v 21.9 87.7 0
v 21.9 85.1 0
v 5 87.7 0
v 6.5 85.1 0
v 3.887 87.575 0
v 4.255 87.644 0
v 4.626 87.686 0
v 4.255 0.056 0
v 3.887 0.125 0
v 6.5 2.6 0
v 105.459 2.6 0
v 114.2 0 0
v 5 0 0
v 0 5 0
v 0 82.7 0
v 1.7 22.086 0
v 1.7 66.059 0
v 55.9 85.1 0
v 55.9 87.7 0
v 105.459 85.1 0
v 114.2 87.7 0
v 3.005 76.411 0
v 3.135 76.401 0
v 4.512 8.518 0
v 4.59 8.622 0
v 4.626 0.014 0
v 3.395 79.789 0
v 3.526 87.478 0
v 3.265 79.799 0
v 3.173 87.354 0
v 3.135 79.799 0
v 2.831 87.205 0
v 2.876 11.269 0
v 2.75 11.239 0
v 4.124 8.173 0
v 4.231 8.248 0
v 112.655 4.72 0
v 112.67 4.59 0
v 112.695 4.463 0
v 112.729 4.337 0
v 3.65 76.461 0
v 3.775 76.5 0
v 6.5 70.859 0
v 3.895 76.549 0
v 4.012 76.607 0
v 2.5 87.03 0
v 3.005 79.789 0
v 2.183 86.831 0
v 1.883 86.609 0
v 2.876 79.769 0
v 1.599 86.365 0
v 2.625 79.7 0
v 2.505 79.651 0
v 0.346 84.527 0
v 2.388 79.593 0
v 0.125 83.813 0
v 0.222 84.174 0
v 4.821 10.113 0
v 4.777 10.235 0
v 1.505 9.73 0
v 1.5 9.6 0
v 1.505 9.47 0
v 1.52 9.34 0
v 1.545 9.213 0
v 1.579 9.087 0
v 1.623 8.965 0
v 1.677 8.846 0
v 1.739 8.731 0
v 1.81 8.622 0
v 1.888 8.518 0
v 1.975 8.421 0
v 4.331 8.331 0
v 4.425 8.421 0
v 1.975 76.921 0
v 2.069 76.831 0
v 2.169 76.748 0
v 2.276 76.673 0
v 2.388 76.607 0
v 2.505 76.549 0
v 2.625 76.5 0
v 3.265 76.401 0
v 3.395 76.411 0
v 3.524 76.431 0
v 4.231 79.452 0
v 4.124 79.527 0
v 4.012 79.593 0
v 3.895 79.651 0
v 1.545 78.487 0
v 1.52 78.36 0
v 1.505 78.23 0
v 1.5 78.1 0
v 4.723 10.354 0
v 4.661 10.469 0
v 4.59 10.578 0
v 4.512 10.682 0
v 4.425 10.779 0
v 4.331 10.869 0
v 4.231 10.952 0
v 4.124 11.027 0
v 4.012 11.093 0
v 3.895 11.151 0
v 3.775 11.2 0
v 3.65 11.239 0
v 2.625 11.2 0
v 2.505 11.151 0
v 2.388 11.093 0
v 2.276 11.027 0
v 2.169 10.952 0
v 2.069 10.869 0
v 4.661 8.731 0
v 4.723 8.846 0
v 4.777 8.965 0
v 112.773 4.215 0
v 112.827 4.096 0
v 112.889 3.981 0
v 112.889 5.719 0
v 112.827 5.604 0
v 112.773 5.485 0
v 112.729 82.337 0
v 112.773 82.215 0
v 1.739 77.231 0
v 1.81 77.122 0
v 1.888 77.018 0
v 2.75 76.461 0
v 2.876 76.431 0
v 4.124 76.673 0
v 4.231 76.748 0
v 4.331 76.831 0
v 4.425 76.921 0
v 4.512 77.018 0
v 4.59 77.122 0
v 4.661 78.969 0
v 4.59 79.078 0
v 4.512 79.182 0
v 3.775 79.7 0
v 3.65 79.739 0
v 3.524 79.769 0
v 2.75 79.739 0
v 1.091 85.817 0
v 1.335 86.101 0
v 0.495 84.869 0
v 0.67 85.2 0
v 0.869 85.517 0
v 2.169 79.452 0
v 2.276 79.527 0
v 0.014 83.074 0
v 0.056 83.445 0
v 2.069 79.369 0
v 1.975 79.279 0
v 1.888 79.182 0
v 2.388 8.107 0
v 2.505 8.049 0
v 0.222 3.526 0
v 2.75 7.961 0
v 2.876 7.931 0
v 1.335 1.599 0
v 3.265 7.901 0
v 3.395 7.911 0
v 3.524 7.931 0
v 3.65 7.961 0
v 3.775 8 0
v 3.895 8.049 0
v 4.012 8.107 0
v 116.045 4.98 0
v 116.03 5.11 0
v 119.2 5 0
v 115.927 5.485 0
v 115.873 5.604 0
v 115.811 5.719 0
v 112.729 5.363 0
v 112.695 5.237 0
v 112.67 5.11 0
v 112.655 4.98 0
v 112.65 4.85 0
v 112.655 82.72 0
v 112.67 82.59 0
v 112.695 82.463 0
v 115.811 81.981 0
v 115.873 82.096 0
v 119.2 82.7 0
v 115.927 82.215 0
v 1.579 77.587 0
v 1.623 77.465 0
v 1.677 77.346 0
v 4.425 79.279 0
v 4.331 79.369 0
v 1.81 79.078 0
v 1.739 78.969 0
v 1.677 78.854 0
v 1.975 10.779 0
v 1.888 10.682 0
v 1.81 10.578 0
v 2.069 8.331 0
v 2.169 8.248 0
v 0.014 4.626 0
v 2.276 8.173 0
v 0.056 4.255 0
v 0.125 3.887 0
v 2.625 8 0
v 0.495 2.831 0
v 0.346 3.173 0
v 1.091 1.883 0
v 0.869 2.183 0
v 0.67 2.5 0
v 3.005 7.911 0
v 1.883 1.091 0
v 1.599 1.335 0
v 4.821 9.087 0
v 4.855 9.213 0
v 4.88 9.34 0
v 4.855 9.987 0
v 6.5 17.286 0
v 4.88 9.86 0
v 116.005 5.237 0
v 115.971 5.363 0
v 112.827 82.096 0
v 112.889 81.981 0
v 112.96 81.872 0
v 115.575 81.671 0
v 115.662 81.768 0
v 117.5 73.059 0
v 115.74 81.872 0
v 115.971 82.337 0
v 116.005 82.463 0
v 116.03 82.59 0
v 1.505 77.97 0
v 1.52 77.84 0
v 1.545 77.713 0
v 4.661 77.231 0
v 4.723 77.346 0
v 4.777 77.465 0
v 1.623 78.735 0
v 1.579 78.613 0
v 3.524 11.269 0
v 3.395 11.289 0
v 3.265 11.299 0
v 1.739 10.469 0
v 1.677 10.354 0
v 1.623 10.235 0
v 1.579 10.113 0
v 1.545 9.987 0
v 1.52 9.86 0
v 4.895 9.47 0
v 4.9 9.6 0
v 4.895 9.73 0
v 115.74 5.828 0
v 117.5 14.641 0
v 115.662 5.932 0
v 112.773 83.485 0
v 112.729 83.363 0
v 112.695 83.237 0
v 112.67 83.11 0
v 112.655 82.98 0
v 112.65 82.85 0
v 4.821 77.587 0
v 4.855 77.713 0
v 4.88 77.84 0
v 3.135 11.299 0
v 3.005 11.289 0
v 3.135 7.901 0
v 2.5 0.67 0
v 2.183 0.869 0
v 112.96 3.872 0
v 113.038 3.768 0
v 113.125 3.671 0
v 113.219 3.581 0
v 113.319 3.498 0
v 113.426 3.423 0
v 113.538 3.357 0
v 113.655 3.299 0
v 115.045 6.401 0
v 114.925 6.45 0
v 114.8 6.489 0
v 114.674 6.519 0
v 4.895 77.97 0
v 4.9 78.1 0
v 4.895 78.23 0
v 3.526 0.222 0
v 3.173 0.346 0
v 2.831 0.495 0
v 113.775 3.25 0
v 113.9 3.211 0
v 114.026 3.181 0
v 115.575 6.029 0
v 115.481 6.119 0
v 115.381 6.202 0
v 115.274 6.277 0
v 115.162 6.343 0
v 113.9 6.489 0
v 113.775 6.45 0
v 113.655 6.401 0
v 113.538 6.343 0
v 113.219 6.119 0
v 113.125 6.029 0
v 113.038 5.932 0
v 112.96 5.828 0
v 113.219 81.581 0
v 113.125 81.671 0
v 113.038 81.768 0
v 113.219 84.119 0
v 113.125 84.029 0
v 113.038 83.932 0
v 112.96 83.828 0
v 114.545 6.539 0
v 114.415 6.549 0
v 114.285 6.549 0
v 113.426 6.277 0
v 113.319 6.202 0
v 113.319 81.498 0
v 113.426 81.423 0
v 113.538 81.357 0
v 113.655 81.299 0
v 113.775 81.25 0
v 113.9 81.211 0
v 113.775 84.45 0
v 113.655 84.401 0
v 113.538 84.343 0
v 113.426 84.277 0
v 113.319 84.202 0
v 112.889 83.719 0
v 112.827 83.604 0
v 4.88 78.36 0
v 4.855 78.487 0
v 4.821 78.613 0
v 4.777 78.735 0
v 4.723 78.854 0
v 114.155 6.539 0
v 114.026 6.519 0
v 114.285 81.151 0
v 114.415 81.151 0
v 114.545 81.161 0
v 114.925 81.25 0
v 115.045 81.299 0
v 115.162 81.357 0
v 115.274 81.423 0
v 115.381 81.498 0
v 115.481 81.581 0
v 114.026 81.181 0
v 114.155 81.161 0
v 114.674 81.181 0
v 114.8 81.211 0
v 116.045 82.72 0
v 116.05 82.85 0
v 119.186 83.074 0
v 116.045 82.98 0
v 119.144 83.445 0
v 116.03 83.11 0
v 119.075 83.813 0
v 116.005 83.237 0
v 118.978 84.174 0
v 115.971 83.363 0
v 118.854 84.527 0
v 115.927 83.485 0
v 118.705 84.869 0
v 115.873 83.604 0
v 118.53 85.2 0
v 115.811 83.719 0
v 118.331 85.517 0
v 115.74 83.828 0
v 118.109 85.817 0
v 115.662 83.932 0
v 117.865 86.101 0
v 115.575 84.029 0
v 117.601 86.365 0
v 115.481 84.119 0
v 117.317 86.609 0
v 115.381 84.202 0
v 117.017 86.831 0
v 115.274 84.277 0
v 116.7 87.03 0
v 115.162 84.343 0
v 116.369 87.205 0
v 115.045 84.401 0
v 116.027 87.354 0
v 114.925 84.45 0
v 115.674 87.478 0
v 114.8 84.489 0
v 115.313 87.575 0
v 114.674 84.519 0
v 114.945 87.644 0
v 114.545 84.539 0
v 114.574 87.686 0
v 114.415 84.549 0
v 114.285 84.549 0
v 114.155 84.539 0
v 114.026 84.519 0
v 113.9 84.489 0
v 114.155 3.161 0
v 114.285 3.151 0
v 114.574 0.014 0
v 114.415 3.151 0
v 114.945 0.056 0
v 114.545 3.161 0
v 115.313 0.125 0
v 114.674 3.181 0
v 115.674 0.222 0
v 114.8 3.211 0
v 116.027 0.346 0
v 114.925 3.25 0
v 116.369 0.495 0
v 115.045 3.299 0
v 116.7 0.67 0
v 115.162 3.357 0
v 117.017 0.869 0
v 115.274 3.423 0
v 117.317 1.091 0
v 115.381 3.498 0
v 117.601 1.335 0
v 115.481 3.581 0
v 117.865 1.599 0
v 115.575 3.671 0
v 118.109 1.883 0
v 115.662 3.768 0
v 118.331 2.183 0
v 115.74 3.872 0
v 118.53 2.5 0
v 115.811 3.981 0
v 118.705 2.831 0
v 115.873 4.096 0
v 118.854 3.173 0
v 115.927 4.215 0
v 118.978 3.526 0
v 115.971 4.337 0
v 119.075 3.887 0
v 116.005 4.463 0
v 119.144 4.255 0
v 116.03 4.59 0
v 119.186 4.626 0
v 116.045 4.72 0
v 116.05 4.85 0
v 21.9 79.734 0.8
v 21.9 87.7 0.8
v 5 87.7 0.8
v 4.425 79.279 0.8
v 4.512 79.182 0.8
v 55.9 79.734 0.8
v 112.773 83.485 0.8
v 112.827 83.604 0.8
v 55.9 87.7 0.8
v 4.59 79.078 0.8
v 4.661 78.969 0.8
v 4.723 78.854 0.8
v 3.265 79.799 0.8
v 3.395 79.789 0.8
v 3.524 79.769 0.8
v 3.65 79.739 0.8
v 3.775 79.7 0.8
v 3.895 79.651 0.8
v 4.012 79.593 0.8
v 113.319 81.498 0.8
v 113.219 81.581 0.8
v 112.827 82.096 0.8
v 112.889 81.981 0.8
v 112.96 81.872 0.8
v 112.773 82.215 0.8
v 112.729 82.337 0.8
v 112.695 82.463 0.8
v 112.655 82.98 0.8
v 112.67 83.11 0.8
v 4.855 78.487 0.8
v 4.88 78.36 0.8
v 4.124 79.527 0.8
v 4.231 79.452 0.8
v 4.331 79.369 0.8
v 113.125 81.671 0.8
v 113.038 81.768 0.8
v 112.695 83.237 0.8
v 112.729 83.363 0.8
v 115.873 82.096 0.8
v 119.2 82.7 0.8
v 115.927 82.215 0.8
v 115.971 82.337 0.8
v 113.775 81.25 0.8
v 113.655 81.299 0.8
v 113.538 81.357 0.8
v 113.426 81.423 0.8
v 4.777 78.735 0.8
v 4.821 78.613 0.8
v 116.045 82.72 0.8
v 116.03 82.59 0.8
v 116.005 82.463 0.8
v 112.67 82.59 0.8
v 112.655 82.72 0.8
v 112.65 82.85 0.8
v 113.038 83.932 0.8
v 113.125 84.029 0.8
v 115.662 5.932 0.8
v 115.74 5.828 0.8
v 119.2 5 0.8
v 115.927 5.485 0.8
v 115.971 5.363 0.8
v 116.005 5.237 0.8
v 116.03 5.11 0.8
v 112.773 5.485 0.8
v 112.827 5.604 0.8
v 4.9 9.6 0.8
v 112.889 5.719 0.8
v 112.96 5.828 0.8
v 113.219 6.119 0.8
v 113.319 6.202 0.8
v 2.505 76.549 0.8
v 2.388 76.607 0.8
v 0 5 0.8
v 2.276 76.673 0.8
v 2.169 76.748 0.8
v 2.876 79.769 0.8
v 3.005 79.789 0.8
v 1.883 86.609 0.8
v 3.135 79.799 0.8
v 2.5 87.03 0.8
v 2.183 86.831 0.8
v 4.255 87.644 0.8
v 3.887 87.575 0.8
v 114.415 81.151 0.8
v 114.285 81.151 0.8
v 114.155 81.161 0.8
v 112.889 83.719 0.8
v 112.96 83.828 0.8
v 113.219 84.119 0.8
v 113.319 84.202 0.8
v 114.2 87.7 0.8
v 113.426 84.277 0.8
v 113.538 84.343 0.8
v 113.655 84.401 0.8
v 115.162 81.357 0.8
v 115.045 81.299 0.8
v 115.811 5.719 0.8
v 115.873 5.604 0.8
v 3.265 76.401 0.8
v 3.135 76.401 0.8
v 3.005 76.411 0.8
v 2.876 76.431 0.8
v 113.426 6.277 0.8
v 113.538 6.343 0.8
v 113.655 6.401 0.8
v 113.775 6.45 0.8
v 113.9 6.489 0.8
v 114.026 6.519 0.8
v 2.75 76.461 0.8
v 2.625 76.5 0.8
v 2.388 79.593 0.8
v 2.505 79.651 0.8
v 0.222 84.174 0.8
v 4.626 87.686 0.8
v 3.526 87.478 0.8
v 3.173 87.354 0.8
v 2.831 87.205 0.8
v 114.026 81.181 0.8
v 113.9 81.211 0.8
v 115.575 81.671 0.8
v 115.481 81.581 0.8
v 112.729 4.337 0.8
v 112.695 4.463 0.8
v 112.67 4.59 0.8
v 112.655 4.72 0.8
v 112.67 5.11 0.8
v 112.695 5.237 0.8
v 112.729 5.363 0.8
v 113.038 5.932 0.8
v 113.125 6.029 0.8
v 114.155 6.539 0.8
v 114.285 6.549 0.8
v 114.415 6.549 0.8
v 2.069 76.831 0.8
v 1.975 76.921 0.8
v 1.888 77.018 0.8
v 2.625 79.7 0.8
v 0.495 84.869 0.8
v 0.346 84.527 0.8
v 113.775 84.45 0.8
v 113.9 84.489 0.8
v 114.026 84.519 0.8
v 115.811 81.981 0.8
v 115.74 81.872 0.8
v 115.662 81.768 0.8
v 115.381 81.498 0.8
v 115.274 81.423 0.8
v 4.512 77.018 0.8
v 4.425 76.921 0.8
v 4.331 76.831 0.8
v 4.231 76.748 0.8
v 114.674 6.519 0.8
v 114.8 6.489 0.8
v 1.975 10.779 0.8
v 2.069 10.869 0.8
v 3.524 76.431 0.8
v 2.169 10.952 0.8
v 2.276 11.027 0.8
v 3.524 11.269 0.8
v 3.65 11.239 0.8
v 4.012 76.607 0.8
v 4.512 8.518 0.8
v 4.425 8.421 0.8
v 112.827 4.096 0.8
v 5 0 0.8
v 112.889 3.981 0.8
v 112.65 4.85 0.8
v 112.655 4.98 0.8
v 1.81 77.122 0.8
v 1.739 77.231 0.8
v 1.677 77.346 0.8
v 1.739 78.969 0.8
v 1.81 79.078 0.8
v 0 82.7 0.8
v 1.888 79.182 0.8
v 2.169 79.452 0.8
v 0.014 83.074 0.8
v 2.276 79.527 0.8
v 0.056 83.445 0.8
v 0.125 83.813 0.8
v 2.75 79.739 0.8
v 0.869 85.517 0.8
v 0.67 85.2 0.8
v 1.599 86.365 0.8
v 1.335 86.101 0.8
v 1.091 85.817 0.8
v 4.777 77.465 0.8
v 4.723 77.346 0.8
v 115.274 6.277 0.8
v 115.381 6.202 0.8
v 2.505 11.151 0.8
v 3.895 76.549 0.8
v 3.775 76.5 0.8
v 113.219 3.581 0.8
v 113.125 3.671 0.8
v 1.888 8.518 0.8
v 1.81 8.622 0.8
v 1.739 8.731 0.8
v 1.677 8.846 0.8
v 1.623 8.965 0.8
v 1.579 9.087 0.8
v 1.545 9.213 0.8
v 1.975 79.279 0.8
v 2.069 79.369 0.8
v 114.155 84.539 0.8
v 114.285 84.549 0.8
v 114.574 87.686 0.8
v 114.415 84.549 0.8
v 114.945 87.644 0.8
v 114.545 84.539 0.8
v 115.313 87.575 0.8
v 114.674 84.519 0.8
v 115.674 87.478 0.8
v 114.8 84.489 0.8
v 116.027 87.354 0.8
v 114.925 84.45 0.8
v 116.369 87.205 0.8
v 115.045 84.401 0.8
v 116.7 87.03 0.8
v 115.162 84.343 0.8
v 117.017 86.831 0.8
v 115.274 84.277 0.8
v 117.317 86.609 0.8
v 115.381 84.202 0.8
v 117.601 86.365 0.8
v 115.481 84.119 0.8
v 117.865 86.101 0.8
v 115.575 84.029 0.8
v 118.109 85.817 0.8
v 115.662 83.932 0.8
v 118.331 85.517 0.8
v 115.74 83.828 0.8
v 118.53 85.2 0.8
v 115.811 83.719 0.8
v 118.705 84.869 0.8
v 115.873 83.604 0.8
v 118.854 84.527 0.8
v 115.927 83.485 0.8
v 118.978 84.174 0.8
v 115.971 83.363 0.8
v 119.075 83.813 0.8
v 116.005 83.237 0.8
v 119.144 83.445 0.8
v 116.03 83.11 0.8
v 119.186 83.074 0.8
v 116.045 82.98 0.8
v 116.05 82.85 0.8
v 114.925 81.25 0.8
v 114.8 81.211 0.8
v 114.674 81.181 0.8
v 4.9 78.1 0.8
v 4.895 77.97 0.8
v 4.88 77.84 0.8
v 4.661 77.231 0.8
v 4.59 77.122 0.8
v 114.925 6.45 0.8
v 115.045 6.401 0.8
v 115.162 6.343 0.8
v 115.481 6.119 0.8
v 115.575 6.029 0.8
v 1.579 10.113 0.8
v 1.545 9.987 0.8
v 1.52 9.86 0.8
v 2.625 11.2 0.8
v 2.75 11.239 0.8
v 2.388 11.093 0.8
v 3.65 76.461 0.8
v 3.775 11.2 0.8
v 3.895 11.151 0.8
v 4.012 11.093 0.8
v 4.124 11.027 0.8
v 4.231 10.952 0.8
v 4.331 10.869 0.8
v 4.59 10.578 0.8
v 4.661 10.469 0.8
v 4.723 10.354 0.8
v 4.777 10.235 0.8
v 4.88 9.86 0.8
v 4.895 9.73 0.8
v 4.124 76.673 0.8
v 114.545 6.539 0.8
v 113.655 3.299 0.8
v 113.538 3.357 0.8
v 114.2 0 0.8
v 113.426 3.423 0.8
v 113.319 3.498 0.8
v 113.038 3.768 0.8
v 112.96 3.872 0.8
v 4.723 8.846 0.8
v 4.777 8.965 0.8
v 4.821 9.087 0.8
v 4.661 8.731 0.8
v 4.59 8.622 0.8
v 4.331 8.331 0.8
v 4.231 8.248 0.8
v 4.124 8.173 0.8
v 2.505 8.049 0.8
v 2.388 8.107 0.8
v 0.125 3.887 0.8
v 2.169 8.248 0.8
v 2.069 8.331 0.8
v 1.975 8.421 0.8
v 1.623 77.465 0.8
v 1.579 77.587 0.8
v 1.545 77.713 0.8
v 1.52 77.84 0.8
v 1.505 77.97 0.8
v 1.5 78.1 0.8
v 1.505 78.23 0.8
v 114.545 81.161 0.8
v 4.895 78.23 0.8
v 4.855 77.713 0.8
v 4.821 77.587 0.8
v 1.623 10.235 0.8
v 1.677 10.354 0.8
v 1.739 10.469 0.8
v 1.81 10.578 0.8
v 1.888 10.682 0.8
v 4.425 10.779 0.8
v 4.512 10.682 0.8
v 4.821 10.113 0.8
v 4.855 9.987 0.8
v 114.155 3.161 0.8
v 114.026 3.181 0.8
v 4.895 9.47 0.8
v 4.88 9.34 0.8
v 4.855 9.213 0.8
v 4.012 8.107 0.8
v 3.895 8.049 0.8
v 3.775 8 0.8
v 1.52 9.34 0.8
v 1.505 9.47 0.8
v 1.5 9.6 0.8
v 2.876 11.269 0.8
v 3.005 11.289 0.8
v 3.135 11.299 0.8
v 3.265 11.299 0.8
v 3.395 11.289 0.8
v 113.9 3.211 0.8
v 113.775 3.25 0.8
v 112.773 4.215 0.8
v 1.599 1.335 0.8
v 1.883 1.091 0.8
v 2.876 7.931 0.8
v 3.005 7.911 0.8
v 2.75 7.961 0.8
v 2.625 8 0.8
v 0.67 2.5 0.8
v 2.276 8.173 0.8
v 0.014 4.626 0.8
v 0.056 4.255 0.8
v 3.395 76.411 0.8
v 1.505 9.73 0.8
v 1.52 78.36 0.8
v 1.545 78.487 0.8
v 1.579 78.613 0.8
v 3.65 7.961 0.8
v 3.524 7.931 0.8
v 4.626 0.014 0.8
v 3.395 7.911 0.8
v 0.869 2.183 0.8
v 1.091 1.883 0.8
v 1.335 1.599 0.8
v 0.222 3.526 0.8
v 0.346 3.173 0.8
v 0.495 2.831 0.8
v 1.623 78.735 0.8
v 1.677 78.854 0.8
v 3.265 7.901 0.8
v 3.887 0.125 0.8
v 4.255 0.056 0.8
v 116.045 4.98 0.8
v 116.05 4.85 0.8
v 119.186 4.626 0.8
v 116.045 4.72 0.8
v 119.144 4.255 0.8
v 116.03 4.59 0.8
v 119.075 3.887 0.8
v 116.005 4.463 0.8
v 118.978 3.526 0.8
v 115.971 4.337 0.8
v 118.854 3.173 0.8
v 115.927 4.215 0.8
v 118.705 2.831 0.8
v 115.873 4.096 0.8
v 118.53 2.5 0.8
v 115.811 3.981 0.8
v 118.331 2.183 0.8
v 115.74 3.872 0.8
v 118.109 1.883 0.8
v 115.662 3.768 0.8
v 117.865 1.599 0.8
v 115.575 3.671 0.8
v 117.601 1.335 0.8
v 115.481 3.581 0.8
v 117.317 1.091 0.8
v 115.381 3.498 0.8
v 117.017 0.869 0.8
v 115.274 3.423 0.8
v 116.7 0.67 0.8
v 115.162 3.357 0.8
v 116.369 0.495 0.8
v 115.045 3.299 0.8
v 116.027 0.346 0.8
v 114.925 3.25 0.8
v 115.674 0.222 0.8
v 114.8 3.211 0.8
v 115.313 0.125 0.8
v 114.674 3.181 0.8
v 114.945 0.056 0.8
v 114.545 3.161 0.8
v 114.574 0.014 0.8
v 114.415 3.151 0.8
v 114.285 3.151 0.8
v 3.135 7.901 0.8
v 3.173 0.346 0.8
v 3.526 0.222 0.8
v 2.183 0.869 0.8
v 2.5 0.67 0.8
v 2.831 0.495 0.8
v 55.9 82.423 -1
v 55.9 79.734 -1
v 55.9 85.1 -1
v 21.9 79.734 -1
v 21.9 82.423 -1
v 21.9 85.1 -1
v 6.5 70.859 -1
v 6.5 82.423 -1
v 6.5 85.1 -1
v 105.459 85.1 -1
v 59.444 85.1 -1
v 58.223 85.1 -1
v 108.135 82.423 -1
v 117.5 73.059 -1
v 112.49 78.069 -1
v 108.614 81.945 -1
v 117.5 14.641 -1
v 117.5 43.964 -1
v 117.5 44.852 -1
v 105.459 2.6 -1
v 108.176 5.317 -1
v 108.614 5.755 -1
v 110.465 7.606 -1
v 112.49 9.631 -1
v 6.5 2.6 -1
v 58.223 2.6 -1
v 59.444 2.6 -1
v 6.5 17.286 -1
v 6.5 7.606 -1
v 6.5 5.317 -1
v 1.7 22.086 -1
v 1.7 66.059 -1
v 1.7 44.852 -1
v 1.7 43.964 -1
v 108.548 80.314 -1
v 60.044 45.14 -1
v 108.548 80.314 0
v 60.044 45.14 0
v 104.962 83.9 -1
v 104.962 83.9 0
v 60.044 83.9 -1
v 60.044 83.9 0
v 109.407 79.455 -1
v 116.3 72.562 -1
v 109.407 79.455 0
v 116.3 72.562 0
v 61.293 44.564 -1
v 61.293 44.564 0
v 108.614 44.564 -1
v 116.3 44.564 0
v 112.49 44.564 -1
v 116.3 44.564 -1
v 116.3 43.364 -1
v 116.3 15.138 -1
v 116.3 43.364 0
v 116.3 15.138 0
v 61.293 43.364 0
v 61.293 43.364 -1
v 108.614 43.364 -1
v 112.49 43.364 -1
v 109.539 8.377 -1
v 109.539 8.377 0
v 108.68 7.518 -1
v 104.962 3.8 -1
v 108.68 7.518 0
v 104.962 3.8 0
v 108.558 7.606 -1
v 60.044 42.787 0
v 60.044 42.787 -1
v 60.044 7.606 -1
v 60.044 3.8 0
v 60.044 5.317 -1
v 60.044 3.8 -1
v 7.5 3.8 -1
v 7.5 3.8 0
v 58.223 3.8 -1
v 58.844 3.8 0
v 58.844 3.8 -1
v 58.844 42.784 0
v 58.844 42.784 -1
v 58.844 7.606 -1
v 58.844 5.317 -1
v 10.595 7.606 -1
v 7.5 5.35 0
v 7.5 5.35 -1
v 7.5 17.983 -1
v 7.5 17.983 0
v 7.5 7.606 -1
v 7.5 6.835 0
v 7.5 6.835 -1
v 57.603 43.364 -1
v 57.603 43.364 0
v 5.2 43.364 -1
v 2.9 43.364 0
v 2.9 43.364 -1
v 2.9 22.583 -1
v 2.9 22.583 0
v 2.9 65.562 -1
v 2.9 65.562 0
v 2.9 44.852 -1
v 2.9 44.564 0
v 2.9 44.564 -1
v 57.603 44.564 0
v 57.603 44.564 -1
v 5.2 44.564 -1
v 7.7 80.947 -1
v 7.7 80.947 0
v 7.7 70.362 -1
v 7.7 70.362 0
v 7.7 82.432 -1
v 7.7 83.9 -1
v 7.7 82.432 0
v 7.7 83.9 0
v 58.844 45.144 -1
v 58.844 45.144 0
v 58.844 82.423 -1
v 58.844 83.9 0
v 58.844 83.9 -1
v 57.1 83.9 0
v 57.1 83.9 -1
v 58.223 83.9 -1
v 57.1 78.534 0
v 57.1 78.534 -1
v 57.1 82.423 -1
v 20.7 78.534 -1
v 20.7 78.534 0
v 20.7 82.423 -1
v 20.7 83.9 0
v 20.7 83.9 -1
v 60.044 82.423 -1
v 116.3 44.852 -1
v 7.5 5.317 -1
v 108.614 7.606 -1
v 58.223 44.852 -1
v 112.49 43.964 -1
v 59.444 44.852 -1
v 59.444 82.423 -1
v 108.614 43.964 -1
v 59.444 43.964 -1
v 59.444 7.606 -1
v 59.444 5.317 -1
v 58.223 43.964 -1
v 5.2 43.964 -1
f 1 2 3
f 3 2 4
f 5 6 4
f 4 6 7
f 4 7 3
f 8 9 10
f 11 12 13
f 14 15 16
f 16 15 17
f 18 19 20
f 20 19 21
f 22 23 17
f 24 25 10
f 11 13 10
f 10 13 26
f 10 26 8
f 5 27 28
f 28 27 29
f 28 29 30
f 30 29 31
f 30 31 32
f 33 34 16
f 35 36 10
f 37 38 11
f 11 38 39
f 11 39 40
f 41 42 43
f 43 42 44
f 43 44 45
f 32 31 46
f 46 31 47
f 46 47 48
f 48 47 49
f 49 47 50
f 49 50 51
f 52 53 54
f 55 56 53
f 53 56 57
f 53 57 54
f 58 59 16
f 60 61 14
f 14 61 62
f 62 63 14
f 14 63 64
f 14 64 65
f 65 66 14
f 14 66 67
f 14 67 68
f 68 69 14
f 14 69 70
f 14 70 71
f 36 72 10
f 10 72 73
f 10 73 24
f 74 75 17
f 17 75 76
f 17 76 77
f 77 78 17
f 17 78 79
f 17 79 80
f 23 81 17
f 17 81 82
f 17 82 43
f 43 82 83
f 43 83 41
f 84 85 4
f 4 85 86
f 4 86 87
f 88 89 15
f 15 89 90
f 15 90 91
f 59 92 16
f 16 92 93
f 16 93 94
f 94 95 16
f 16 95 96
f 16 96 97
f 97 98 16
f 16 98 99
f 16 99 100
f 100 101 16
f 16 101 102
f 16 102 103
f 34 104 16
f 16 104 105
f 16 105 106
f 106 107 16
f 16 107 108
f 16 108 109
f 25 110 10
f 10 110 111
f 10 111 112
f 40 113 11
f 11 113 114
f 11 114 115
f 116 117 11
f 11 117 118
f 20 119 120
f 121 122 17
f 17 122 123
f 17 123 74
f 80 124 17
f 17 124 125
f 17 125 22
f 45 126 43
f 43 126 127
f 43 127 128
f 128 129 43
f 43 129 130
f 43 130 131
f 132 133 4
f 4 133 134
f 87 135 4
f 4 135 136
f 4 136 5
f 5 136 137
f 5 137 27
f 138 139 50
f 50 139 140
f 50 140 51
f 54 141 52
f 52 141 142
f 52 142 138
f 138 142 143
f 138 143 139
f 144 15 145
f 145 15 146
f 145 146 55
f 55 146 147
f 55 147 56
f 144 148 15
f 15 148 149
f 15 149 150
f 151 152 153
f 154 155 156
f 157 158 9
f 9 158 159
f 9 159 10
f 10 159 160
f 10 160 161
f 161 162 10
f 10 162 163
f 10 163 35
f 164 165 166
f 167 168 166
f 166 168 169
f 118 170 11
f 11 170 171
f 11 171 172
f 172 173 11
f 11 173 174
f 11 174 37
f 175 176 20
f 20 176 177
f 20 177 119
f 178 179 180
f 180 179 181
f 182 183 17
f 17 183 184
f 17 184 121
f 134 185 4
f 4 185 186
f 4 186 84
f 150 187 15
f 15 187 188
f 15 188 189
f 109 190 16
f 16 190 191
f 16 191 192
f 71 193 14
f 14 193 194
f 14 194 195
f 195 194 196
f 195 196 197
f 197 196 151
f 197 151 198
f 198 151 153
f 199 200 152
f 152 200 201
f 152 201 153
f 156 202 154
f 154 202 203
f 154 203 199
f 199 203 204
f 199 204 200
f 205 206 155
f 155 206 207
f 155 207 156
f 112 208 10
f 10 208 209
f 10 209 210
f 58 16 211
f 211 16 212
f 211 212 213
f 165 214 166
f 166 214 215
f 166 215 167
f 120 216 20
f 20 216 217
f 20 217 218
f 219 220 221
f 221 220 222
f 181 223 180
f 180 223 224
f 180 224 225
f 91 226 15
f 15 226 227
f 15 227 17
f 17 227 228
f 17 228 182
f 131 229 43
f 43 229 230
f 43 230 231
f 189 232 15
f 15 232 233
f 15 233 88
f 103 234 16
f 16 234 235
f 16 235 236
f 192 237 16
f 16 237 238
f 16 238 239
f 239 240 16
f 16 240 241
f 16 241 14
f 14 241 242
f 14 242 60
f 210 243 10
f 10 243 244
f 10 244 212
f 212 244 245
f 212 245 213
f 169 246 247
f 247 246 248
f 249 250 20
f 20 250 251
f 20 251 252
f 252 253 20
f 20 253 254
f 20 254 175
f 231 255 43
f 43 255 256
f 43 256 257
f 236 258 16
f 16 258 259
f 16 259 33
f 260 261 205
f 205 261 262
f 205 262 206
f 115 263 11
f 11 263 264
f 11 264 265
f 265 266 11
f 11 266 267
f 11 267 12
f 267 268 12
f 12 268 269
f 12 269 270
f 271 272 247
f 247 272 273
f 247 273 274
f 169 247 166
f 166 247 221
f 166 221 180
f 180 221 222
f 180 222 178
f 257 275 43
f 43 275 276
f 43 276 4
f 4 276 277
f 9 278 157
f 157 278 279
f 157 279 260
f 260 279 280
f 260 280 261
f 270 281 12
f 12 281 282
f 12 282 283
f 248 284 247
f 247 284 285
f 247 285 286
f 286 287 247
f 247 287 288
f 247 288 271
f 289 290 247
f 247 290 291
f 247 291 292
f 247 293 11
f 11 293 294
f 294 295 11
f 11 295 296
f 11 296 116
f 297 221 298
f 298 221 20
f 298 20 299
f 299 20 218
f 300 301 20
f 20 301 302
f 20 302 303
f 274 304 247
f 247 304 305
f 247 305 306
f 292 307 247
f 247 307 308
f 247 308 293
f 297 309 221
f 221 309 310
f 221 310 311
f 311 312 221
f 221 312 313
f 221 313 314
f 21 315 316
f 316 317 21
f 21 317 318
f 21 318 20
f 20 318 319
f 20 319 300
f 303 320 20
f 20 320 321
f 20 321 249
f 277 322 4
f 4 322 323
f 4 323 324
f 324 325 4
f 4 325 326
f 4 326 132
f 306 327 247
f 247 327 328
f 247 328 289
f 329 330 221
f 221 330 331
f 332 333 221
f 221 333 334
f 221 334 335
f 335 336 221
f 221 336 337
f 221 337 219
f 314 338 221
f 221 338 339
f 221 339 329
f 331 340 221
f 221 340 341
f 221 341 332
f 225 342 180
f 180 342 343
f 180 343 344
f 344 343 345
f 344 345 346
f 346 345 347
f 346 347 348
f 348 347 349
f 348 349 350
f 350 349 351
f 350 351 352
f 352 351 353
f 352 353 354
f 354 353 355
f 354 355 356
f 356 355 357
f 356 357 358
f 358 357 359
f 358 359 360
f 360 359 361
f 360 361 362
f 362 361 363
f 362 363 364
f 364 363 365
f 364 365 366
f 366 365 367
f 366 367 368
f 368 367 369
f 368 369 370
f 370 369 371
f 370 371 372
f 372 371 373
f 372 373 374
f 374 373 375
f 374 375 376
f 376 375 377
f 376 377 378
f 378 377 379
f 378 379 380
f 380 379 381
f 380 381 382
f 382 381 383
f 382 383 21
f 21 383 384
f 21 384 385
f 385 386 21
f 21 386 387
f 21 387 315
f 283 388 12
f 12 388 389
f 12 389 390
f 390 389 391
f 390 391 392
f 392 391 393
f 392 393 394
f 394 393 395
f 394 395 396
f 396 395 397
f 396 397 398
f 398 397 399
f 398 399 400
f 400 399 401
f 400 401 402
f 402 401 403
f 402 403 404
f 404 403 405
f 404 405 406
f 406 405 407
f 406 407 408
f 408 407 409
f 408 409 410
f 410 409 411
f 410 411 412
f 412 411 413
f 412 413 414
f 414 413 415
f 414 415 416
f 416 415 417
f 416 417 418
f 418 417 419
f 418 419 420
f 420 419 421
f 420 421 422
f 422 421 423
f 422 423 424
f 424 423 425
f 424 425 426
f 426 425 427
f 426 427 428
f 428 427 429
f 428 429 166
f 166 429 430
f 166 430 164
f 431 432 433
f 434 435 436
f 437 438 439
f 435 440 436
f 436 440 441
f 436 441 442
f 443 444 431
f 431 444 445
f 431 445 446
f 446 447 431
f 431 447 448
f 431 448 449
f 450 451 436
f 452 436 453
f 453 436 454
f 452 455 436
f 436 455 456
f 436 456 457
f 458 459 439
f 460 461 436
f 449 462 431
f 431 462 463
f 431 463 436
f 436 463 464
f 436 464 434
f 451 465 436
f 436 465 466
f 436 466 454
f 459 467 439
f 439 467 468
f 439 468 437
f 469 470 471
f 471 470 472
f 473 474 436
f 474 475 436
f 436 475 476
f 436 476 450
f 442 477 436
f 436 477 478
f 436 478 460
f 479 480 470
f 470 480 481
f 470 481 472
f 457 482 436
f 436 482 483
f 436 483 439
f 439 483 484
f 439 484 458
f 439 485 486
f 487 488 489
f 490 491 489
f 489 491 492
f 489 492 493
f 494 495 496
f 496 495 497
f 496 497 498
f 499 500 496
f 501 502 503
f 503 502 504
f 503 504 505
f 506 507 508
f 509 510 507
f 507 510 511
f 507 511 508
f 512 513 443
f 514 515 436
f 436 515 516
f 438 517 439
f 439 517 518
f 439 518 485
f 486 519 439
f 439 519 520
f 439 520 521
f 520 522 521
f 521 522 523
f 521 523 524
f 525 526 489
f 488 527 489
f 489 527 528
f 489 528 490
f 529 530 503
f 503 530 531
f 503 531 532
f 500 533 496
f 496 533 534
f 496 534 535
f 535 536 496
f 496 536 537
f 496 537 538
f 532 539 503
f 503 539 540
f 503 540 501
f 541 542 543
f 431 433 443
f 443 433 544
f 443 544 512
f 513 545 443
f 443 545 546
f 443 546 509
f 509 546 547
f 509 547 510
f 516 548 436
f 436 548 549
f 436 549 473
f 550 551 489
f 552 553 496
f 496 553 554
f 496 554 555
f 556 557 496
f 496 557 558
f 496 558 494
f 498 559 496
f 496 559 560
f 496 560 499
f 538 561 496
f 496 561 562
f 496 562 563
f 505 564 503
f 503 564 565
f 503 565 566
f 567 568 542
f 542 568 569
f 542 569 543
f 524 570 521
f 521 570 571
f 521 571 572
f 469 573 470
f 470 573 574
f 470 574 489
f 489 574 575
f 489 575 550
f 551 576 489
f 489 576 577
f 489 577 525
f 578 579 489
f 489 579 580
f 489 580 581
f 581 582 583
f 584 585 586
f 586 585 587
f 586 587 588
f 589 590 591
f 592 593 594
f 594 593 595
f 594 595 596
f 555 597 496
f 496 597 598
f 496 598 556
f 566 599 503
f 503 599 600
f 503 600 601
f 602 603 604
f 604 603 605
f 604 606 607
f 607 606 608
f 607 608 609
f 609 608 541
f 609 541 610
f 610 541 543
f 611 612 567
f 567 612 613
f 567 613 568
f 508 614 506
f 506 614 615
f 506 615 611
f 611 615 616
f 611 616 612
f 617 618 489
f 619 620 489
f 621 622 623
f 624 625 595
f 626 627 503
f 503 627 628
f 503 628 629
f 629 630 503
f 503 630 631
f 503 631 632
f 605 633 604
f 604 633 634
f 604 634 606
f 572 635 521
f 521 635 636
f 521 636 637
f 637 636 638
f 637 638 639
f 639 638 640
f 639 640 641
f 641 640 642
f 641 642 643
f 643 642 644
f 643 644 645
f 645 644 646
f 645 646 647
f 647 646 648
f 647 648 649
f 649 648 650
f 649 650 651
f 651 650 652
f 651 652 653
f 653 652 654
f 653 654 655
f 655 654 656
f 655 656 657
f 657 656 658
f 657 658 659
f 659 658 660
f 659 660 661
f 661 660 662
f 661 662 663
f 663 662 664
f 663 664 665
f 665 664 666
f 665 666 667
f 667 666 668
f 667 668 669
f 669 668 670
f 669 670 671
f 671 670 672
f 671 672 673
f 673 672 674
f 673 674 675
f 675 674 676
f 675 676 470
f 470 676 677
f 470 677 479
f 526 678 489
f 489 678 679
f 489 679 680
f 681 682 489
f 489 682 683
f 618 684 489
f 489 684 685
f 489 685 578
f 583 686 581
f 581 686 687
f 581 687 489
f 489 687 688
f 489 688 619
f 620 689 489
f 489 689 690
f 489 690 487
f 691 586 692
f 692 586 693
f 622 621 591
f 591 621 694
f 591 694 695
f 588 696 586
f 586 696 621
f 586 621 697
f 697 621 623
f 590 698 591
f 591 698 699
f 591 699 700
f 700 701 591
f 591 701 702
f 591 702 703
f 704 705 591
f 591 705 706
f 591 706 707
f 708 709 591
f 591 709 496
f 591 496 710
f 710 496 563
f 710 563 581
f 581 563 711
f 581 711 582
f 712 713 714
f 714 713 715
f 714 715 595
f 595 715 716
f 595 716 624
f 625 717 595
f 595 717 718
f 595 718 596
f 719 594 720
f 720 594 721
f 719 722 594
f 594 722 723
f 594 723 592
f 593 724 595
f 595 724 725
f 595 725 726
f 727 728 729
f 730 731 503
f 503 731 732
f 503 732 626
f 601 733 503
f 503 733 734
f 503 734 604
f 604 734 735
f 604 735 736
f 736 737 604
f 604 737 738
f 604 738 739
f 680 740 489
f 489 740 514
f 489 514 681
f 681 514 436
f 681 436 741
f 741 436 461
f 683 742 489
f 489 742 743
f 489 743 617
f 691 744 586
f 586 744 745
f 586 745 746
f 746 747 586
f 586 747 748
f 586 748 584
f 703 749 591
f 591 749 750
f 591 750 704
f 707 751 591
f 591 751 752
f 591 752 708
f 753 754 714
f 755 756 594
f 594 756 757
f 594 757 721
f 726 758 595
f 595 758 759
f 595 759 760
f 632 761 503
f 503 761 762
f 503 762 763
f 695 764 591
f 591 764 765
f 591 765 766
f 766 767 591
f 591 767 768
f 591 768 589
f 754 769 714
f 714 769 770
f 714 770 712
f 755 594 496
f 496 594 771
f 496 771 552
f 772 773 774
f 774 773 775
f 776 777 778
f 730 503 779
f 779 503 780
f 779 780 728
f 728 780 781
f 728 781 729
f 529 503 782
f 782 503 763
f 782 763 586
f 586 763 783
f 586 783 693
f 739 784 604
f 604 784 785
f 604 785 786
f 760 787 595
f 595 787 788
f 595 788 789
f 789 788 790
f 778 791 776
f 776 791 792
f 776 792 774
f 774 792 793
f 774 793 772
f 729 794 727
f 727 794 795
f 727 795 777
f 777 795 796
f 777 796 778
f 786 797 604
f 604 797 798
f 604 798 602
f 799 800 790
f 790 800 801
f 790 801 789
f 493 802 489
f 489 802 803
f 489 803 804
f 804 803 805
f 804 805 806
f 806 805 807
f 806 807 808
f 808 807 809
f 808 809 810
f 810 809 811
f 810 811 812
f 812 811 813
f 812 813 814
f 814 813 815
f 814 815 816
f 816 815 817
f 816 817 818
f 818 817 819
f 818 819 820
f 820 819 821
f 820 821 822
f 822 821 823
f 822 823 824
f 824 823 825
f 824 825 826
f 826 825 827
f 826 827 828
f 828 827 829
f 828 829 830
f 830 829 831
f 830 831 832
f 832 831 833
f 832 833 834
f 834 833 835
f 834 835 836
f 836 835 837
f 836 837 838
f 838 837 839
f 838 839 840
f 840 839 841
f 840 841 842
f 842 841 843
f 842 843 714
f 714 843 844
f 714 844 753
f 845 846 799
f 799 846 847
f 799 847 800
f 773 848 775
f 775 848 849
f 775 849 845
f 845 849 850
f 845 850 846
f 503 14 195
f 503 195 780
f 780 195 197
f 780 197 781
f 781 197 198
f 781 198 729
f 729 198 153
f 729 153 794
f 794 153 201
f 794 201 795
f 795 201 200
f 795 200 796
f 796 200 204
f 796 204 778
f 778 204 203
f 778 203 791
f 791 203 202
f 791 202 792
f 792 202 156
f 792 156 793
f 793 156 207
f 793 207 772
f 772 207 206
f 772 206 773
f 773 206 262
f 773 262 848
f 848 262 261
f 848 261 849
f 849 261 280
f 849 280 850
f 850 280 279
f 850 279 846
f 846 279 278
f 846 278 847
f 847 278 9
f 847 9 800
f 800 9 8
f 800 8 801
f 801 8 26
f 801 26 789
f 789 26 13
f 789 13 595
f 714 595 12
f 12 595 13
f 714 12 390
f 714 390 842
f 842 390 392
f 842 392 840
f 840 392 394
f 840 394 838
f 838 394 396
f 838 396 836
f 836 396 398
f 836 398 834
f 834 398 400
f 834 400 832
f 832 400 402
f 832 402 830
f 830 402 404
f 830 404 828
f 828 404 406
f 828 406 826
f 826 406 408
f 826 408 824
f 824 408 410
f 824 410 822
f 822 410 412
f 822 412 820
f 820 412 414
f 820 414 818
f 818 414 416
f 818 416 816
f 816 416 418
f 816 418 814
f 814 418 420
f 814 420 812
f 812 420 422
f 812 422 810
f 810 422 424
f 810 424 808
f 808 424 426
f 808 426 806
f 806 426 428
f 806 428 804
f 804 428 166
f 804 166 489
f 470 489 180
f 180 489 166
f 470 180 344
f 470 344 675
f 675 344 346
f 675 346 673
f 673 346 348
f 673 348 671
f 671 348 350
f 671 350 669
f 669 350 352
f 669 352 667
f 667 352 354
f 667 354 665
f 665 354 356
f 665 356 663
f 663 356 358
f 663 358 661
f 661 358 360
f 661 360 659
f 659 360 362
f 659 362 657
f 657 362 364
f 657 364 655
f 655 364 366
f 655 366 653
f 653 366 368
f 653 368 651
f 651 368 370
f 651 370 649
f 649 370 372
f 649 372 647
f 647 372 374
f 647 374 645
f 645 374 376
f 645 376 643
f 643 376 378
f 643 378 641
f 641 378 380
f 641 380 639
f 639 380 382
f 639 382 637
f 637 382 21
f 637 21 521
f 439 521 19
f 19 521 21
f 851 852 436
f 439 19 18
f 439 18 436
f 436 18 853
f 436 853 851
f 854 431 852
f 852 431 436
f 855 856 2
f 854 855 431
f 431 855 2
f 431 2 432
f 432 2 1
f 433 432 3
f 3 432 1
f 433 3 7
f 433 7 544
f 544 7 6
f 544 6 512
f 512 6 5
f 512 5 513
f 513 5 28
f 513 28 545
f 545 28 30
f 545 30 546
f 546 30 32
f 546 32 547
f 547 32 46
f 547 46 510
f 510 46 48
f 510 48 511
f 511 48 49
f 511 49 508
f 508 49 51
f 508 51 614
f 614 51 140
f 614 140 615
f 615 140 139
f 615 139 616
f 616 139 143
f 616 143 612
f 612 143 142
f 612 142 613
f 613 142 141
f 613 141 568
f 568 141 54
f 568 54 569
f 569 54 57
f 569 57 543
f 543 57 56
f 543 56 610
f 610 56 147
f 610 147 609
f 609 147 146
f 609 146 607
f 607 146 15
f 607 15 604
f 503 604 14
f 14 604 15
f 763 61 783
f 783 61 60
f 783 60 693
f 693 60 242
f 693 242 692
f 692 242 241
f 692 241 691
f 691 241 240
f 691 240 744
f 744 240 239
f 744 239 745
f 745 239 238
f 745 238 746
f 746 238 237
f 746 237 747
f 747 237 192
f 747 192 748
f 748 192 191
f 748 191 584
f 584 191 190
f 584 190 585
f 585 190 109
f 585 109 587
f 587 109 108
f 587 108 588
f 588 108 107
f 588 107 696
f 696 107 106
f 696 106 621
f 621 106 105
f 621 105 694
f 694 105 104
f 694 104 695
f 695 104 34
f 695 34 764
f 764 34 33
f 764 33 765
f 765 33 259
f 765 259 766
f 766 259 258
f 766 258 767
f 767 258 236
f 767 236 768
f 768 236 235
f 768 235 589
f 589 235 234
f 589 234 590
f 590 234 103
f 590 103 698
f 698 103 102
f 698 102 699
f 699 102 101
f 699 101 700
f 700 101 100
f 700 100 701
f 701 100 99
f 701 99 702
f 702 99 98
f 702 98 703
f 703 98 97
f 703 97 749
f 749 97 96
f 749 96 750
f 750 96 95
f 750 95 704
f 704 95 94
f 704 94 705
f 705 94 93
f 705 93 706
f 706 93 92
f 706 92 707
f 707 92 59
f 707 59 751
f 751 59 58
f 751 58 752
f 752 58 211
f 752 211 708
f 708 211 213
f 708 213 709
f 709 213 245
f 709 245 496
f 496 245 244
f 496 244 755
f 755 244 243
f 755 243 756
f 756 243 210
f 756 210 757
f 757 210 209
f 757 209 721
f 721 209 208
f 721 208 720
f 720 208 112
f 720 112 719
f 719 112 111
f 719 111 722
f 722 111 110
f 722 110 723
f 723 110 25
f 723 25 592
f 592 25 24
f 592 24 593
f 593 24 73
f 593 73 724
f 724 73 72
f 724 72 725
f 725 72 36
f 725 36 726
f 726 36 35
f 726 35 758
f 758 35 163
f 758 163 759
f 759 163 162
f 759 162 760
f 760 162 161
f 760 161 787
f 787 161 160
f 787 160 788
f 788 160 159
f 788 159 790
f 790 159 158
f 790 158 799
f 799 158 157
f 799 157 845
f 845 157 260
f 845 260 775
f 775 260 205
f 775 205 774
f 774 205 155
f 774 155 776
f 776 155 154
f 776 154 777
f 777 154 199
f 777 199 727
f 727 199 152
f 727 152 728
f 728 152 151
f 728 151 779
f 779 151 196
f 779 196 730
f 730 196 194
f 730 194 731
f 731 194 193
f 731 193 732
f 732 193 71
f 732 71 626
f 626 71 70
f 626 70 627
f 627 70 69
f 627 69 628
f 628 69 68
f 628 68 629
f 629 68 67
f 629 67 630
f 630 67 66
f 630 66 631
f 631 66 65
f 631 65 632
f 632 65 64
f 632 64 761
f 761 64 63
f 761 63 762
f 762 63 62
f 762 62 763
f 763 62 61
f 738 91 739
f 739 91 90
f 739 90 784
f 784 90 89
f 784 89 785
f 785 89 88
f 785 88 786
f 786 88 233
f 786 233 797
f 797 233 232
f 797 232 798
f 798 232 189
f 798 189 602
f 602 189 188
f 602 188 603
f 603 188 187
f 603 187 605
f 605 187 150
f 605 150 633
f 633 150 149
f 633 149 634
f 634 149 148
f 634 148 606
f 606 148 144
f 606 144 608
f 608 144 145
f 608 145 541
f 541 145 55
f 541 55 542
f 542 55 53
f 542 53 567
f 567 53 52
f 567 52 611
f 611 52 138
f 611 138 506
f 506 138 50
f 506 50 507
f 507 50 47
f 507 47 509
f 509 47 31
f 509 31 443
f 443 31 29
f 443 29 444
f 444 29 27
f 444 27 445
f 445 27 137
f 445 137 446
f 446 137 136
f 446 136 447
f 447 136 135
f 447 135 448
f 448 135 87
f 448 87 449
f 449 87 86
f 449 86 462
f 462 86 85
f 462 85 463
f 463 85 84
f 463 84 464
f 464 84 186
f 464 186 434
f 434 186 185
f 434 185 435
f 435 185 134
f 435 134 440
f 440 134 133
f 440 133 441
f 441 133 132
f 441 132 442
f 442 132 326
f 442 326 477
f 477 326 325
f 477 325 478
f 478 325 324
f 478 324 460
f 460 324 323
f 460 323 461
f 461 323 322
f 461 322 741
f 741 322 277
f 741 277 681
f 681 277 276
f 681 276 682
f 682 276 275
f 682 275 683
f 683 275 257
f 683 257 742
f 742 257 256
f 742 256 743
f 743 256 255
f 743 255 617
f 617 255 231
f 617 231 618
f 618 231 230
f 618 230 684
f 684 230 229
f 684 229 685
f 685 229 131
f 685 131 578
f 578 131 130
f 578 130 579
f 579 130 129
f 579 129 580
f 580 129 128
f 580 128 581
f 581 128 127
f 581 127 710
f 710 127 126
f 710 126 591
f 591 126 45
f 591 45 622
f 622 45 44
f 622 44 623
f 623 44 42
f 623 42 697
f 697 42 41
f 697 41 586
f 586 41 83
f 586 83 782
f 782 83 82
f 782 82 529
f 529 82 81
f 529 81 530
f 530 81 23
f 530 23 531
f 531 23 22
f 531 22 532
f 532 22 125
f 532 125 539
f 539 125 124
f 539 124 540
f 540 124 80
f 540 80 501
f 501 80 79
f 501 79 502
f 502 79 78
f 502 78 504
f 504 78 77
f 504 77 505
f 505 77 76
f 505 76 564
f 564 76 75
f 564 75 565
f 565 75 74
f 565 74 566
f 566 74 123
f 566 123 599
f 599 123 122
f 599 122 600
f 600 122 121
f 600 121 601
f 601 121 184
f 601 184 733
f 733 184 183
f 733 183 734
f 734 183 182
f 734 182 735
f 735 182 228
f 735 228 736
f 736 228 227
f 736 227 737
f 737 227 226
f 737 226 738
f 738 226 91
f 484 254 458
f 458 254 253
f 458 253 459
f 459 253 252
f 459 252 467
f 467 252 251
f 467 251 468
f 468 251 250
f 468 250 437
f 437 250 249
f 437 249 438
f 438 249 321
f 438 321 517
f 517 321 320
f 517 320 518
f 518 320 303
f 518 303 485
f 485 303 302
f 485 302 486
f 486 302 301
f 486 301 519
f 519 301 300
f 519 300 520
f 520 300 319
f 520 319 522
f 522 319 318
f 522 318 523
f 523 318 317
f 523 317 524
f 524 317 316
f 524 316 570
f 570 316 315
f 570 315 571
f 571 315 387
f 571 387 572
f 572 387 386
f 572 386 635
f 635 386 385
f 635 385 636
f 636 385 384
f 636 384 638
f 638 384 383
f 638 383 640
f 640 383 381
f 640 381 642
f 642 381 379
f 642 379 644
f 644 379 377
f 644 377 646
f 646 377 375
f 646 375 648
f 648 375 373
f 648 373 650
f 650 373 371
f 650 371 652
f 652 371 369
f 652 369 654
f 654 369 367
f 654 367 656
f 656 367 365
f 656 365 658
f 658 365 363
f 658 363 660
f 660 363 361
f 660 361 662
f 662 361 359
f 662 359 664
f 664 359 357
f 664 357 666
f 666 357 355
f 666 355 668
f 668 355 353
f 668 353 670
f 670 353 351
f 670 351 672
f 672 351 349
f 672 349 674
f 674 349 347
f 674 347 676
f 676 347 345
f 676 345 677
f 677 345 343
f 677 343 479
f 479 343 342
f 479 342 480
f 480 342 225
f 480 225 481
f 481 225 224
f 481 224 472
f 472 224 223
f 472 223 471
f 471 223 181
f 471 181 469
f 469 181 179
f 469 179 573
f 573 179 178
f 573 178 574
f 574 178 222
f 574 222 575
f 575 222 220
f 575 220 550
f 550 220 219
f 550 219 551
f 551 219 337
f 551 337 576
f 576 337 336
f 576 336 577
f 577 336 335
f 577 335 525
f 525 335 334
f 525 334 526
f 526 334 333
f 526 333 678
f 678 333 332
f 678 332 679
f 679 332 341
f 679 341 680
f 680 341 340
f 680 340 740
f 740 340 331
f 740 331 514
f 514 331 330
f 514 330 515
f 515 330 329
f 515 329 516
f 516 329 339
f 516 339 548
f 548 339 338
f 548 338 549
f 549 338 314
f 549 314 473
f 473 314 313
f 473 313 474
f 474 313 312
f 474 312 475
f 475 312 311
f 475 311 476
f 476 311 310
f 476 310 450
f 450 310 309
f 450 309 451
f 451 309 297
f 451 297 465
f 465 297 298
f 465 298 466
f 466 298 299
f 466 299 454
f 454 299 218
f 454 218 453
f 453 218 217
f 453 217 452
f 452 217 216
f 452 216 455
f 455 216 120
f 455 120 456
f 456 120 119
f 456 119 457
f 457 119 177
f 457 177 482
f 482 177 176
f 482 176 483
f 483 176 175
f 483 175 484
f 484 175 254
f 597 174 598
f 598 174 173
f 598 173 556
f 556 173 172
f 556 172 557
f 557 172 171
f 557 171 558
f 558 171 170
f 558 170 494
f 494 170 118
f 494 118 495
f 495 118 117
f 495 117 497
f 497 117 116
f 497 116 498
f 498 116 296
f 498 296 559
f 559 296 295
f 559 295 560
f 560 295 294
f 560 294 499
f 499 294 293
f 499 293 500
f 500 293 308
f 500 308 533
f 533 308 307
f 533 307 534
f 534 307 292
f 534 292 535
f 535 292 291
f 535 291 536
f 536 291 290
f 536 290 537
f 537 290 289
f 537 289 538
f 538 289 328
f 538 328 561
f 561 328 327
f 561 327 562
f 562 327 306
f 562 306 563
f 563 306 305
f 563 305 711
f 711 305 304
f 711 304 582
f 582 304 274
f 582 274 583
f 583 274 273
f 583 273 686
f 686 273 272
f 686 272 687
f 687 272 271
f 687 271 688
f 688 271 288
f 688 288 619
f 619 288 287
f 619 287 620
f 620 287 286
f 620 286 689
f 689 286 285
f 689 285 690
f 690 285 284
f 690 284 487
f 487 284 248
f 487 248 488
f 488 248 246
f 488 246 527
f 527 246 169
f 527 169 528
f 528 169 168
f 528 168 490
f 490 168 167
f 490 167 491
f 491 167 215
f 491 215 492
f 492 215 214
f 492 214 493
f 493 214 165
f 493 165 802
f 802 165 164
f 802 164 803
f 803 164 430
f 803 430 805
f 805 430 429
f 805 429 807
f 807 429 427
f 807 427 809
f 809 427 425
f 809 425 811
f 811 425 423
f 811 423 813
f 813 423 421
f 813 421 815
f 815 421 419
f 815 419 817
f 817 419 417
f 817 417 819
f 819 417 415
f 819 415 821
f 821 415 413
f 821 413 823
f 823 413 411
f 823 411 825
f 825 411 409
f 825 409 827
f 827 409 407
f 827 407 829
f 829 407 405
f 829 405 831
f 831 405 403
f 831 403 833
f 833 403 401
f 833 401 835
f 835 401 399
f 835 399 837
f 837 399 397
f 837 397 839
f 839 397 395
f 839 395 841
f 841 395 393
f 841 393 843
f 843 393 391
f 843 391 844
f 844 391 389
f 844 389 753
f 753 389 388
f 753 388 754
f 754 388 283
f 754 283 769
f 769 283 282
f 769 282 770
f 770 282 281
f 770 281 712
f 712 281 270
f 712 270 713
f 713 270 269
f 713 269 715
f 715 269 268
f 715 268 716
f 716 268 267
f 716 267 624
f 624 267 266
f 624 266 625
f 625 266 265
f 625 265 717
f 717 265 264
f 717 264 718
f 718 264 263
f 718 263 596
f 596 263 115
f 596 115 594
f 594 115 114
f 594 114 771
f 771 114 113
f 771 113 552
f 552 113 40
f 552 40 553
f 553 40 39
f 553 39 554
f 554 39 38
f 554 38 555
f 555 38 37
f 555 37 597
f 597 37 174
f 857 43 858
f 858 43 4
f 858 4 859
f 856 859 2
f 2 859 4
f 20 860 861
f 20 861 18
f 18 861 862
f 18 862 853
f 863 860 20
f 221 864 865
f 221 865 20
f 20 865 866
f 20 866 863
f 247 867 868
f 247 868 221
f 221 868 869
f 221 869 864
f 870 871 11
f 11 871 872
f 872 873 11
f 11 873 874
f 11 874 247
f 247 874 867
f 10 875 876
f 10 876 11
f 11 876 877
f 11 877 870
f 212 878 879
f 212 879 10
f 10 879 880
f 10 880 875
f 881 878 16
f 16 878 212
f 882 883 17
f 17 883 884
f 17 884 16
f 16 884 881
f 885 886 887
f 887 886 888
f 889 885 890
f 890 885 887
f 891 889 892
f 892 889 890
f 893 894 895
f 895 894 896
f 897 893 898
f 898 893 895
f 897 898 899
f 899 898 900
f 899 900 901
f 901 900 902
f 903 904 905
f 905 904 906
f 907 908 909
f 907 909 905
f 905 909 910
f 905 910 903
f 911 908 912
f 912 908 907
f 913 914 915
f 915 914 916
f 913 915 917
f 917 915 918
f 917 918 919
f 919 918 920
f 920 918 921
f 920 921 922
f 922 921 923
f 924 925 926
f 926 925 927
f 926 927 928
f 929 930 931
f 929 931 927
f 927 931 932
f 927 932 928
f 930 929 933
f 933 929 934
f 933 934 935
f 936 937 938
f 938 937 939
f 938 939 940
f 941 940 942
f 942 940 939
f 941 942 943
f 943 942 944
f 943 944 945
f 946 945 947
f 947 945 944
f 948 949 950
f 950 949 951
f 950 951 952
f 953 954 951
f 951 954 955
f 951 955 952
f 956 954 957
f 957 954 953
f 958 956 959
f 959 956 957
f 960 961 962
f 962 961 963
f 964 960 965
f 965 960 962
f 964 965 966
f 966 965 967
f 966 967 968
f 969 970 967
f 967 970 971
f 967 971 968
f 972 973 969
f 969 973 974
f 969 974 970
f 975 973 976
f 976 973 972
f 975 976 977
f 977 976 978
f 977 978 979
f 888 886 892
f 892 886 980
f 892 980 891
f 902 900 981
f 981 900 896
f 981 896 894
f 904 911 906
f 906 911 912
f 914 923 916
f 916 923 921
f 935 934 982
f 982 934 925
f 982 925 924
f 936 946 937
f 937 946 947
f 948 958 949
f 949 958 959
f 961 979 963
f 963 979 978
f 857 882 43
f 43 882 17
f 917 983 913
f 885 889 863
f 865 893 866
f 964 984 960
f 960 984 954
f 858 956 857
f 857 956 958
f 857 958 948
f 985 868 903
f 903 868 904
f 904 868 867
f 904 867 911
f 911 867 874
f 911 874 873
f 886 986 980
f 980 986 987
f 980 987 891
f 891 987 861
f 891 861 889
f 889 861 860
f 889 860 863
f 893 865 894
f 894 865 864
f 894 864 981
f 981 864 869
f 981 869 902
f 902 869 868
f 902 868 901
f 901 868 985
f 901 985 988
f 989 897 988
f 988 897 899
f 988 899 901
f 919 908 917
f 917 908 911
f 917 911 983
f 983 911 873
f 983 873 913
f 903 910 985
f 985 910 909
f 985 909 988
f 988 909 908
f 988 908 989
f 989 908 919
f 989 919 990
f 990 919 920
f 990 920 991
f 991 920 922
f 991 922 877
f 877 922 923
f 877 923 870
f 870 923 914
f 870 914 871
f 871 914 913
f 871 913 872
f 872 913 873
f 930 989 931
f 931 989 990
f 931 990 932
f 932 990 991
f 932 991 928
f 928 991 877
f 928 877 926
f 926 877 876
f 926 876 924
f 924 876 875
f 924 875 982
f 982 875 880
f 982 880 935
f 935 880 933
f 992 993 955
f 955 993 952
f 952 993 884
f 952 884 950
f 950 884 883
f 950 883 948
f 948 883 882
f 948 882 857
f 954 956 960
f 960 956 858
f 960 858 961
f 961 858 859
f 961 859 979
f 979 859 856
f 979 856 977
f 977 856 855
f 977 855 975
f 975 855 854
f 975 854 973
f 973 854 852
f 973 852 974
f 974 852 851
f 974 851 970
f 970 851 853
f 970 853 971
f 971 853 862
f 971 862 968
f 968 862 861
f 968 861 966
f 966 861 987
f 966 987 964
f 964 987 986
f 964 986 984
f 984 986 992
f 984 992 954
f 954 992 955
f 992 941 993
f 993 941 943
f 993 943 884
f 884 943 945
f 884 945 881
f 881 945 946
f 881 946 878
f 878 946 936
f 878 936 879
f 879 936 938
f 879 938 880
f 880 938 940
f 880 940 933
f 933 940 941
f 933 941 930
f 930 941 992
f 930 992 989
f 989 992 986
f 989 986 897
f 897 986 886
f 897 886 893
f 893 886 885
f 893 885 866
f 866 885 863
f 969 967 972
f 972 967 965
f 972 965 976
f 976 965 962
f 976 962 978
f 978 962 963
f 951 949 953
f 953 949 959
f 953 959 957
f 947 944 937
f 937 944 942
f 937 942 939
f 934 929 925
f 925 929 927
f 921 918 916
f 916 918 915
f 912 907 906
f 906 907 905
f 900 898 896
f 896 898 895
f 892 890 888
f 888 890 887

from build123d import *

# Parameters (mm, degrees)
SKIZZE1_R                       = 1.7
AUFSATZ_LINEAR_AUSTRAGEN1_DEPTH = 0.8
AUFSATZ_LINEAR_AUSTRAGEN2_DEPTH = 1


with BuildPart() as part:
    # Skizze1 → Aufsatz-Linear austragen1 (new body)
    with BuildSketch(Plane.XY):
        with BuildLine():
            Line((0, 5), (0, 82.7))
            ThreePointArc((0, 82.7), (1.464466094, 86.235533906), (5, 87.7))
            Line((5, 87.7), (21.9, 87.7))
            Line((21.9, 87.7), (21.9, 79.73388451))
            Line((21.9, 79.73388451), (55.9, 79.73388451))
            Line((55.9, 79.73388451), (55.9, 87.7))
            Line((55.9, 87.7), (114.2, 87.7))
            ThreePointArc((114.2, 87.7), (117.735533906, 86.235533906), (119.2, 82.7))
            Line((119.2, 82.7), (119.2, 75.8))
            Line((119.2, 75.8), (119.2, 5))
            ThreePointArc((119.2, 5), (117.735533906, 1.464466094), (114.2, 0))
            Line((114.2, 0), (5, 0))
            ThreePointArc((5, 0), (1.464466094, 1.464466094), (0, 5))
        make_face()
        with Locations((3.2, 9.6)):
            Circle(SKIZZE1_R, mode=Mode.SUBTRACT)
        with Locations((3.2, 78.1)):
            Circle(SKIZZE1_R, mode=Mode.SUBTRACT)
        with Locations((114.35, 82.85)):
            Circle(SKIZZE1_R, mode=Mode.SUBTRACT)
        with Locations((114.35, 4.85)):
            Circle(SKIZZE1_R, mode=Mode.SUBTRACT)
    extrude(amount=AUFSATZ_LINEAR_AUSTRAGEN1_DEPTH)

    # Skizze3 → Aufsatz-Linear austragen2 (add)
    with BuildSketch(Plane(origin=(0, 0, 0), x_dir=(-1, 0, 0), z_dir=(0, 0, -1))):
        Polygon((-55.9, 79.73388451), (-55.9, 85.1), (-105.458578644, 85.1), (-117.5, 73.058578644), (-117.5, 14.641421356), (-105.458578644, 2.6), (-6.5, 2.6), (-6.5, 17.286335909), (-1.7, 22.086335909), (-1.7, 66.058578644), (-6.5, 70.858578644), (-6.5, 85.1), (-21.9, 85.1), (-21.9, 79.73388451), align=None)
        Polygon((-58.844037441, 83.9), (-57.1, 83.9), (-57.1, 78.53388451), (-20.7, 78.53388451), (-20.7, 83.9), (-7.7, 83.9), (-7.7, 82.43185957), (-58.844037441, 45.143695389), align=None, mode=Mode.SUBTRACT)
        Polygon((-104.961522369, 83.9), (-60.044037441, 83.9), (-60.044037441, 45.139977904), (-108.547677312, 80.313845057), align=None, mode=Mode.SUBTRACT)
        Polygon((-116.3, 72.561522369), (-109.406904246, 79.454618123), (-61.293455008, 44.563709394), (-116.3, 44.563709394), align=None, mode=Mode.SUBTRACT)
        Polygon((-116.3, 15.138477631), (-116.3, 43.363709394), (-61.293455008, 43.363709394), (-109.538727473, 8.377205104), align=None, mode=Mode.SUBTRACT)
        Polygon((-104.961522369, 3.8), (-108.679500539, 7.51797817), (-60.044037441, 42.787440884), (-60.044037441, 3.8), align=None, mode=Mode.SUBTRACT)
        Polygon((-7.5, 3.8), (-58.844037441, 3.8), (-58.844037441, 42.7837234), (-7.5, 5.349742948), align=None, mode=Mode.SUBTRACT)
        Polygon((-7.5, 17.983392184), (-7.5, 6.834817309), (-57.602628153, 43.363709394), (-2.9, 43.363709394), (-2.9, 22.583392184), align=None, mode=Mode.SUBTRACT)
        Polygon((-2.9, 65.561522369), (-2.9, 44.563709394), (-57.602628153, 44.563709394), (-7.7, 80.946785208), (-7.7, 70.361522369), align=None, mode=Mode.SUBTRACT)
    extrude(amount=AUFSATZ_LINEAR_AUSTRAGEN2_DEPTH)


solid = part.part
